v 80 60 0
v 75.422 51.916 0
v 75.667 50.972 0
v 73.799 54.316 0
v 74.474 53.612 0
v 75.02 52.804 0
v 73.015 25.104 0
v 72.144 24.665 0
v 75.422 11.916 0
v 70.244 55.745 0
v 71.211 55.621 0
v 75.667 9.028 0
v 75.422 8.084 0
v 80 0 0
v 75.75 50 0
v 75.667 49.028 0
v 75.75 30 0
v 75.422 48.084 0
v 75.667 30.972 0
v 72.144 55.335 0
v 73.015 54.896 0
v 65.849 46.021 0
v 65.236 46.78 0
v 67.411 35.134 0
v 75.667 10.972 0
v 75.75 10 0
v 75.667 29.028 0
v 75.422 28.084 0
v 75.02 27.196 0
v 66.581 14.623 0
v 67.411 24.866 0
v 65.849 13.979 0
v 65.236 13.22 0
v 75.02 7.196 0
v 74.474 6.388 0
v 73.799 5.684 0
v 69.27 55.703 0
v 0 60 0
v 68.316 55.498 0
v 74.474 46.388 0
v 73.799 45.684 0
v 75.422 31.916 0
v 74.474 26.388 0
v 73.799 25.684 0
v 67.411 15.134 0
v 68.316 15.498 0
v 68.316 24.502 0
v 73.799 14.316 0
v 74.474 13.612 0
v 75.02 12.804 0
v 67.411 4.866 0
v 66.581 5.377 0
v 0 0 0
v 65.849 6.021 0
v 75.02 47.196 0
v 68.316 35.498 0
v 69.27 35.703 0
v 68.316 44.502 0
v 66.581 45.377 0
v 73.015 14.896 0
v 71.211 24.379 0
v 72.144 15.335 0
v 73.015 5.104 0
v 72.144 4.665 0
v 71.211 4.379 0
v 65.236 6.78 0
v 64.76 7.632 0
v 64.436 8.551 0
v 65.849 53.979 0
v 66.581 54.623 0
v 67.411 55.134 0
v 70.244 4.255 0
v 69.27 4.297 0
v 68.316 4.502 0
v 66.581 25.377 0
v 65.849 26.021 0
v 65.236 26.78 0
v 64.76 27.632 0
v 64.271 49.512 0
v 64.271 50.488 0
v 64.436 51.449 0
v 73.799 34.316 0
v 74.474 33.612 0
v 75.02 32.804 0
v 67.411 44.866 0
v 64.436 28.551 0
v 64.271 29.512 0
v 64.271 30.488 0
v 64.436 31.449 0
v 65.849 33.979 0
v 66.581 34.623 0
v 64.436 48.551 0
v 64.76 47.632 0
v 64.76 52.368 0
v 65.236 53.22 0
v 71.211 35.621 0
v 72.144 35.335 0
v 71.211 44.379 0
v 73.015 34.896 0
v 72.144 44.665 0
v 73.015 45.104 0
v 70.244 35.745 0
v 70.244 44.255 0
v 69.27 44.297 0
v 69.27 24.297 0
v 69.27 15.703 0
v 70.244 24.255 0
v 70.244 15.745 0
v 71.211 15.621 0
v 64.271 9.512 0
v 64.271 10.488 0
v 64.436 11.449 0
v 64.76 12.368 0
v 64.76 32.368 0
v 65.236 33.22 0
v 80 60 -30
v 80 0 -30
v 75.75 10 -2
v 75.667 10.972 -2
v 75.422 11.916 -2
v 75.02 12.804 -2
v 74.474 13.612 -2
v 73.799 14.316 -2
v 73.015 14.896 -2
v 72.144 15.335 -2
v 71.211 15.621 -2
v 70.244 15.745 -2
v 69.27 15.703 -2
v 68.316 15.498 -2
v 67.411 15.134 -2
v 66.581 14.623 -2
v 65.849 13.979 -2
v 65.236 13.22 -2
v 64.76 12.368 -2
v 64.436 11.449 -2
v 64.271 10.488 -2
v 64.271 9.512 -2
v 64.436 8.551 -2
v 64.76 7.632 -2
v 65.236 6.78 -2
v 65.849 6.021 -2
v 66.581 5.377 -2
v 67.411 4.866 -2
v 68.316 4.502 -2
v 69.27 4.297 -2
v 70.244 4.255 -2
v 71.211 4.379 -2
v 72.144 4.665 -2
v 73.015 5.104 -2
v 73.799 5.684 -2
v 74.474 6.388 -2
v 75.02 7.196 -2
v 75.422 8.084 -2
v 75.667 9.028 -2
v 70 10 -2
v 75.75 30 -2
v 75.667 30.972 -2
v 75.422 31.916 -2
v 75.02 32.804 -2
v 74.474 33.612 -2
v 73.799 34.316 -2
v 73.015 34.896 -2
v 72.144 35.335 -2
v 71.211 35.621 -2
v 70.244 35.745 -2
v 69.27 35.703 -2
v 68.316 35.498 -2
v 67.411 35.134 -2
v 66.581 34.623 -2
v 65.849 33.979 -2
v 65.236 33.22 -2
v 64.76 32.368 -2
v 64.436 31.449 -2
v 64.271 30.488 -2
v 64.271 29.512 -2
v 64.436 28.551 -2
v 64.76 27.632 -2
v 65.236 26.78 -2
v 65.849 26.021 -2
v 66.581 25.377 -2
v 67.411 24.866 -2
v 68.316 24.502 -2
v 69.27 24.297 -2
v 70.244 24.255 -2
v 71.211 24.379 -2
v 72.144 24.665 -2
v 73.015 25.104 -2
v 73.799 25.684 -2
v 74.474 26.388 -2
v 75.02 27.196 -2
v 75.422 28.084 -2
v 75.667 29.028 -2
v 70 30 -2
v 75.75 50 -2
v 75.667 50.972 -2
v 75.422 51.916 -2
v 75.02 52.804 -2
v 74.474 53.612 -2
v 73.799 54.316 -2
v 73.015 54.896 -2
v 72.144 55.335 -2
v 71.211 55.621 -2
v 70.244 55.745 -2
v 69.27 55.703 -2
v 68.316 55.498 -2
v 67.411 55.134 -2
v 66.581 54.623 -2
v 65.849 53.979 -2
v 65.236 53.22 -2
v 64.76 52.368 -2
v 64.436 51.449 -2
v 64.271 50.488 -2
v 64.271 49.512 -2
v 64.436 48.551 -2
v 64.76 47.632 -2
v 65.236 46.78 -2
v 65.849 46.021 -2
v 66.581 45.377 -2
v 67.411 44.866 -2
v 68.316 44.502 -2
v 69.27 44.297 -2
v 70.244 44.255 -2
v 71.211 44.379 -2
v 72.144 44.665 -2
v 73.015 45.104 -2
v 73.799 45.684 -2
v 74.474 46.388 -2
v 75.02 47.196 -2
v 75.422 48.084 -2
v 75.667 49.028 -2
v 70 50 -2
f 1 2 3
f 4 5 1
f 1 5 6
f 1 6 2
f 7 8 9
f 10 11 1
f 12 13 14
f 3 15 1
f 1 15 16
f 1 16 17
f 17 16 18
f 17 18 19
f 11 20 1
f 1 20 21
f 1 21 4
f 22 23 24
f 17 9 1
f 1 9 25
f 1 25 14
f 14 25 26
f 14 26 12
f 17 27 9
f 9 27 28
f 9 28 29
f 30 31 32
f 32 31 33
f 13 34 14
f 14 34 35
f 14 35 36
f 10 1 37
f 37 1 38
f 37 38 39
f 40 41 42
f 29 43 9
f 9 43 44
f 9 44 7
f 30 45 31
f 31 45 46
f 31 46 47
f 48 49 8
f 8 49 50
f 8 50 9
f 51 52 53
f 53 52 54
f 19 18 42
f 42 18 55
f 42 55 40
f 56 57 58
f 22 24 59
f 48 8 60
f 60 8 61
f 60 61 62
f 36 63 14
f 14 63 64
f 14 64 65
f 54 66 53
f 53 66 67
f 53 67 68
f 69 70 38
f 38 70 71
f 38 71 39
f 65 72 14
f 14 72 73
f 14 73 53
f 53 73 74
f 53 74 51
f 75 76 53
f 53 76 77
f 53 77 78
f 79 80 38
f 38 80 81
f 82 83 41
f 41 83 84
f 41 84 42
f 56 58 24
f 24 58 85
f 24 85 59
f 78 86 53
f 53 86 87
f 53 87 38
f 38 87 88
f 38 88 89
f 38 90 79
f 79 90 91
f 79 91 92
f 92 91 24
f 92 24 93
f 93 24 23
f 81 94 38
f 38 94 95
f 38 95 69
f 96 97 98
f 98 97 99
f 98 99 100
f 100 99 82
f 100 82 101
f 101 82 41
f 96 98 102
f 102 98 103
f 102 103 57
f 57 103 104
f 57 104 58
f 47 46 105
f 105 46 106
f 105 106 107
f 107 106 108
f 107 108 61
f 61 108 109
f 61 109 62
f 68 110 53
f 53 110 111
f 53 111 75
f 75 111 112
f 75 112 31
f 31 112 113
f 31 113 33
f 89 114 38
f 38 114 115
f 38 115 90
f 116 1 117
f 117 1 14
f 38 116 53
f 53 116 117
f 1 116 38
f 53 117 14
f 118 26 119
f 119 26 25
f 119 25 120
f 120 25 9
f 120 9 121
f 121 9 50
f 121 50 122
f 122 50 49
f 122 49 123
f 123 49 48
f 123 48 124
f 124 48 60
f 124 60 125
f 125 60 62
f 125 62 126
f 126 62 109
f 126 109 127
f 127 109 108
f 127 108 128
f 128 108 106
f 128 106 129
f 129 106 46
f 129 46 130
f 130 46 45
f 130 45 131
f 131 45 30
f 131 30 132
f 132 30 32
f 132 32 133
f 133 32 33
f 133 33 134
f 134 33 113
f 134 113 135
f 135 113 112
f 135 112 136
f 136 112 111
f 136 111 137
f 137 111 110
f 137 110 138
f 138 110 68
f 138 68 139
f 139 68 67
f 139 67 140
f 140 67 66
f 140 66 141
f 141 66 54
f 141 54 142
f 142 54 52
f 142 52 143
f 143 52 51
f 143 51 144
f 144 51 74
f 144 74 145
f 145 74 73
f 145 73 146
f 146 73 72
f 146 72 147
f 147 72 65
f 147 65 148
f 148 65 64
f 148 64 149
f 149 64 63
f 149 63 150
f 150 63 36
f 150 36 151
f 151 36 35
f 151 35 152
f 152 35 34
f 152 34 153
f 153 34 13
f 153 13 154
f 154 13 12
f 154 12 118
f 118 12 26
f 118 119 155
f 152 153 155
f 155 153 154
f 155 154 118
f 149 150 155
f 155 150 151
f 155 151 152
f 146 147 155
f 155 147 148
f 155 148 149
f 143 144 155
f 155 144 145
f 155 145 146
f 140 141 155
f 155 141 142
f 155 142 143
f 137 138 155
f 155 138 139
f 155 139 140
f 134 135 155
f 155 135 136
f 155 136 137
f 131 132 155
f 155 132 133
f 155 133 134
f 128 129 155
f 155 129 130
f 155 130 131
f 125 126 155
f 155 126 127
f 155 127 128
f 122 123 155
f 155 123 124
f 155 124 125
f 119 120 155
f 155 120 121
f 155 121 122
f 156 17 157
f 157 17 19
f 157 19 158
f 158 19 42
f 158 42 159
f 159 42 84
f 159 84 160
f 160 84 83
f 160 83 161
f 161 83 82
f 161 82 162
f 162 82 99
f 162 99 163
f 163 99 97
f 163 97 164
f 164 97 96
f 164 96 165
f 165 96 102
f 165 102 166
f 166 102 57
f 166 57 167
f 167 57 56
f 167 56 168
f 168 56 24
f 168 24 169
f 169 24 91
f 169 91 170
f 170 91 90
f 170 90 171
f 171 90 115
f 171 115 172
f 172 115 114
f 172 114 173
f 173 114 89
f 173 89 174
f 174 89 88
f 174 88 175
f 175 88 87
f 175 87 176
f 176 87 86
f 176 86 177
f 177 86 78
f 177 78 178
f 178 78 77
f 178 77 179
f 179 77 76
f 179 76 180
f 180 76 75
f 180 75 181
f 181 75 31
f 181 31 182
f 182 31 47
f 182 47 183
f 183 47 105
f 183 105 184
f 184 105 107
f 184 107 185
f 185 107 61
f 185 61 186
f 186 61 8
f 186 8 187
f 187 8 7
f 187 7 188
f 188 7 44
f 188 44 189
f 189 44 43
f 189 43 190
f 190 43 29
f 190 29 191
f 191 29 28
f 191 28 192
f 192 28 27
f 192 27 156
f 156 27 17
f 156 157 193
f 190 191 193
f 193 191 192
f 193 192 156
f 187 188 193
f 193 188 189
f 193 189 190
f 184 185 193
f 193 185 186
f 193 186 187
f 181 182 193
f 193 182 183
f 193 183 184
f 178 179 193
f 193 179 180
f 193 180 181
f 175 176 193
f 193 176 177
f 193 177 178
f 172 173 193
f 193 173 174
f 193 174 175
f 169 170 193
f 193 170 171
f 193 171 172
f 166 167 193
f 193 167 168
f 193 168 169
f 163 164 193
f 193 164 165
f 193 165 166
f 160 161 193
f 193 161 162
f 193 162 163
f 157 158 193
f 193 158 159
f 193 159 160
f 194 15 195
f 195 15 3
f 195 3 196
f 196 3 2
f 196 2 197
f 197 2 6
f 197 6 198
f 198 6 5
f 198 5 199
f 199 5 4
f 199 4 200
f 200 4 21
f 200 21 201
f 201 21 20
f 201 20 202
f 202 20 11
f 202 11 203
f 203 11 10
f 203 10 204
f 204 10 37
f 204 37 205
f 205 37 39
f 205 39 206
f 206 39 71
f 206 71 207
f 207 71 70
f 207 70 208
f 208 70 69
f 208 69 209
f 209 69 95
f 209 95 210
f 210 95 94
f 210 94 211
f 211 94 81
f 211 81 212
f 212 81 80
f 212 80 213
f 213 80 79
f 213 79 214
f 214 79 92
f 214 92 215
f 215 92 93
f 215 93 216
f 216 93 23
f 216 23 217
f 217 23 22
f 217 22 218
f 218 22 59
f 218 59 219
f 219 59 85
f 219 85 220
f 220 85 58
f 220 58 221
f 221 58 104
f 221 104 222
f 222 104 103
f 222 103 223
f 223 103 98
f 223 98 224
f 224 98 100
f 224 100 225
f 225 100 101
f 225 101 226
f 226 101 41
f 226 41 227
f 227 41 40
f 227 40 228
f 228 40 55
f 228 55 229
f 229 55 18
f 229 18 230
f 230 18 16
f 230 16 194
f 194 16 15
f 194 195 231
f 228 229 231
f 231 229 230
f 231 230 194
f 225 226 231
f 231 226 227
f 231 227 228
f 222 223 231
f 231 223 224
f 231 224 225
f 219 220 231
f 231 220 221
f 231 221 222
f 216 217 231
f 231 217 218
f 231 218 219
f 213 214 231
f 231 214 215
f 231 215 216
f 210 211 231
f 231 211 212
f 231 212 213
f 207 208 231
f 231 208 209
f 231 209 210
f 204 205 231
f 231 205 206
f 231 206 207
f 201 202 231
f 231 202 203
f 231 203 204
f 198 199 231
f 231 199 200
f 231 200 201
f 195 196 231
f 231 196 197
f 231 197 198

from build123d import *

# Parameters (mm, degrees)
EXTRUDE_1_DEPTH     = 60
SKETCH_2_R          = 5.75
CUT_EXTRUDE_1_DEPTH = 2


with BuildPart() as part:
    # 草图1 → 凸台-拉伸1 (new body)
    with BuildSketch(Plane(origin=(0, 0, 0), x_dir=(1, 0, 0), z_dir=(0, 1, 0))):
        Polygon((0, 0), (80, 30), (80, 0), align=None)
    extrude(amount=EXTRUDE_1_DEPTH)

    # 草图2 → 切除-拉伸1 (cut)
    with BuildSketch(Plane.XY):
        with Locations((70, 50)):
            Circle(SKETCH_2_R)
        with Locations((70, 30)):
            Circle(SKETCH_2_R)
        with Locations((70, 10)):
            Circle(SKETCH_2_R)
    extrude(amount=-CUT_EXTRUDE_1_DEPTH, mode=Mode.SUBTRACT)


solid = part.part
